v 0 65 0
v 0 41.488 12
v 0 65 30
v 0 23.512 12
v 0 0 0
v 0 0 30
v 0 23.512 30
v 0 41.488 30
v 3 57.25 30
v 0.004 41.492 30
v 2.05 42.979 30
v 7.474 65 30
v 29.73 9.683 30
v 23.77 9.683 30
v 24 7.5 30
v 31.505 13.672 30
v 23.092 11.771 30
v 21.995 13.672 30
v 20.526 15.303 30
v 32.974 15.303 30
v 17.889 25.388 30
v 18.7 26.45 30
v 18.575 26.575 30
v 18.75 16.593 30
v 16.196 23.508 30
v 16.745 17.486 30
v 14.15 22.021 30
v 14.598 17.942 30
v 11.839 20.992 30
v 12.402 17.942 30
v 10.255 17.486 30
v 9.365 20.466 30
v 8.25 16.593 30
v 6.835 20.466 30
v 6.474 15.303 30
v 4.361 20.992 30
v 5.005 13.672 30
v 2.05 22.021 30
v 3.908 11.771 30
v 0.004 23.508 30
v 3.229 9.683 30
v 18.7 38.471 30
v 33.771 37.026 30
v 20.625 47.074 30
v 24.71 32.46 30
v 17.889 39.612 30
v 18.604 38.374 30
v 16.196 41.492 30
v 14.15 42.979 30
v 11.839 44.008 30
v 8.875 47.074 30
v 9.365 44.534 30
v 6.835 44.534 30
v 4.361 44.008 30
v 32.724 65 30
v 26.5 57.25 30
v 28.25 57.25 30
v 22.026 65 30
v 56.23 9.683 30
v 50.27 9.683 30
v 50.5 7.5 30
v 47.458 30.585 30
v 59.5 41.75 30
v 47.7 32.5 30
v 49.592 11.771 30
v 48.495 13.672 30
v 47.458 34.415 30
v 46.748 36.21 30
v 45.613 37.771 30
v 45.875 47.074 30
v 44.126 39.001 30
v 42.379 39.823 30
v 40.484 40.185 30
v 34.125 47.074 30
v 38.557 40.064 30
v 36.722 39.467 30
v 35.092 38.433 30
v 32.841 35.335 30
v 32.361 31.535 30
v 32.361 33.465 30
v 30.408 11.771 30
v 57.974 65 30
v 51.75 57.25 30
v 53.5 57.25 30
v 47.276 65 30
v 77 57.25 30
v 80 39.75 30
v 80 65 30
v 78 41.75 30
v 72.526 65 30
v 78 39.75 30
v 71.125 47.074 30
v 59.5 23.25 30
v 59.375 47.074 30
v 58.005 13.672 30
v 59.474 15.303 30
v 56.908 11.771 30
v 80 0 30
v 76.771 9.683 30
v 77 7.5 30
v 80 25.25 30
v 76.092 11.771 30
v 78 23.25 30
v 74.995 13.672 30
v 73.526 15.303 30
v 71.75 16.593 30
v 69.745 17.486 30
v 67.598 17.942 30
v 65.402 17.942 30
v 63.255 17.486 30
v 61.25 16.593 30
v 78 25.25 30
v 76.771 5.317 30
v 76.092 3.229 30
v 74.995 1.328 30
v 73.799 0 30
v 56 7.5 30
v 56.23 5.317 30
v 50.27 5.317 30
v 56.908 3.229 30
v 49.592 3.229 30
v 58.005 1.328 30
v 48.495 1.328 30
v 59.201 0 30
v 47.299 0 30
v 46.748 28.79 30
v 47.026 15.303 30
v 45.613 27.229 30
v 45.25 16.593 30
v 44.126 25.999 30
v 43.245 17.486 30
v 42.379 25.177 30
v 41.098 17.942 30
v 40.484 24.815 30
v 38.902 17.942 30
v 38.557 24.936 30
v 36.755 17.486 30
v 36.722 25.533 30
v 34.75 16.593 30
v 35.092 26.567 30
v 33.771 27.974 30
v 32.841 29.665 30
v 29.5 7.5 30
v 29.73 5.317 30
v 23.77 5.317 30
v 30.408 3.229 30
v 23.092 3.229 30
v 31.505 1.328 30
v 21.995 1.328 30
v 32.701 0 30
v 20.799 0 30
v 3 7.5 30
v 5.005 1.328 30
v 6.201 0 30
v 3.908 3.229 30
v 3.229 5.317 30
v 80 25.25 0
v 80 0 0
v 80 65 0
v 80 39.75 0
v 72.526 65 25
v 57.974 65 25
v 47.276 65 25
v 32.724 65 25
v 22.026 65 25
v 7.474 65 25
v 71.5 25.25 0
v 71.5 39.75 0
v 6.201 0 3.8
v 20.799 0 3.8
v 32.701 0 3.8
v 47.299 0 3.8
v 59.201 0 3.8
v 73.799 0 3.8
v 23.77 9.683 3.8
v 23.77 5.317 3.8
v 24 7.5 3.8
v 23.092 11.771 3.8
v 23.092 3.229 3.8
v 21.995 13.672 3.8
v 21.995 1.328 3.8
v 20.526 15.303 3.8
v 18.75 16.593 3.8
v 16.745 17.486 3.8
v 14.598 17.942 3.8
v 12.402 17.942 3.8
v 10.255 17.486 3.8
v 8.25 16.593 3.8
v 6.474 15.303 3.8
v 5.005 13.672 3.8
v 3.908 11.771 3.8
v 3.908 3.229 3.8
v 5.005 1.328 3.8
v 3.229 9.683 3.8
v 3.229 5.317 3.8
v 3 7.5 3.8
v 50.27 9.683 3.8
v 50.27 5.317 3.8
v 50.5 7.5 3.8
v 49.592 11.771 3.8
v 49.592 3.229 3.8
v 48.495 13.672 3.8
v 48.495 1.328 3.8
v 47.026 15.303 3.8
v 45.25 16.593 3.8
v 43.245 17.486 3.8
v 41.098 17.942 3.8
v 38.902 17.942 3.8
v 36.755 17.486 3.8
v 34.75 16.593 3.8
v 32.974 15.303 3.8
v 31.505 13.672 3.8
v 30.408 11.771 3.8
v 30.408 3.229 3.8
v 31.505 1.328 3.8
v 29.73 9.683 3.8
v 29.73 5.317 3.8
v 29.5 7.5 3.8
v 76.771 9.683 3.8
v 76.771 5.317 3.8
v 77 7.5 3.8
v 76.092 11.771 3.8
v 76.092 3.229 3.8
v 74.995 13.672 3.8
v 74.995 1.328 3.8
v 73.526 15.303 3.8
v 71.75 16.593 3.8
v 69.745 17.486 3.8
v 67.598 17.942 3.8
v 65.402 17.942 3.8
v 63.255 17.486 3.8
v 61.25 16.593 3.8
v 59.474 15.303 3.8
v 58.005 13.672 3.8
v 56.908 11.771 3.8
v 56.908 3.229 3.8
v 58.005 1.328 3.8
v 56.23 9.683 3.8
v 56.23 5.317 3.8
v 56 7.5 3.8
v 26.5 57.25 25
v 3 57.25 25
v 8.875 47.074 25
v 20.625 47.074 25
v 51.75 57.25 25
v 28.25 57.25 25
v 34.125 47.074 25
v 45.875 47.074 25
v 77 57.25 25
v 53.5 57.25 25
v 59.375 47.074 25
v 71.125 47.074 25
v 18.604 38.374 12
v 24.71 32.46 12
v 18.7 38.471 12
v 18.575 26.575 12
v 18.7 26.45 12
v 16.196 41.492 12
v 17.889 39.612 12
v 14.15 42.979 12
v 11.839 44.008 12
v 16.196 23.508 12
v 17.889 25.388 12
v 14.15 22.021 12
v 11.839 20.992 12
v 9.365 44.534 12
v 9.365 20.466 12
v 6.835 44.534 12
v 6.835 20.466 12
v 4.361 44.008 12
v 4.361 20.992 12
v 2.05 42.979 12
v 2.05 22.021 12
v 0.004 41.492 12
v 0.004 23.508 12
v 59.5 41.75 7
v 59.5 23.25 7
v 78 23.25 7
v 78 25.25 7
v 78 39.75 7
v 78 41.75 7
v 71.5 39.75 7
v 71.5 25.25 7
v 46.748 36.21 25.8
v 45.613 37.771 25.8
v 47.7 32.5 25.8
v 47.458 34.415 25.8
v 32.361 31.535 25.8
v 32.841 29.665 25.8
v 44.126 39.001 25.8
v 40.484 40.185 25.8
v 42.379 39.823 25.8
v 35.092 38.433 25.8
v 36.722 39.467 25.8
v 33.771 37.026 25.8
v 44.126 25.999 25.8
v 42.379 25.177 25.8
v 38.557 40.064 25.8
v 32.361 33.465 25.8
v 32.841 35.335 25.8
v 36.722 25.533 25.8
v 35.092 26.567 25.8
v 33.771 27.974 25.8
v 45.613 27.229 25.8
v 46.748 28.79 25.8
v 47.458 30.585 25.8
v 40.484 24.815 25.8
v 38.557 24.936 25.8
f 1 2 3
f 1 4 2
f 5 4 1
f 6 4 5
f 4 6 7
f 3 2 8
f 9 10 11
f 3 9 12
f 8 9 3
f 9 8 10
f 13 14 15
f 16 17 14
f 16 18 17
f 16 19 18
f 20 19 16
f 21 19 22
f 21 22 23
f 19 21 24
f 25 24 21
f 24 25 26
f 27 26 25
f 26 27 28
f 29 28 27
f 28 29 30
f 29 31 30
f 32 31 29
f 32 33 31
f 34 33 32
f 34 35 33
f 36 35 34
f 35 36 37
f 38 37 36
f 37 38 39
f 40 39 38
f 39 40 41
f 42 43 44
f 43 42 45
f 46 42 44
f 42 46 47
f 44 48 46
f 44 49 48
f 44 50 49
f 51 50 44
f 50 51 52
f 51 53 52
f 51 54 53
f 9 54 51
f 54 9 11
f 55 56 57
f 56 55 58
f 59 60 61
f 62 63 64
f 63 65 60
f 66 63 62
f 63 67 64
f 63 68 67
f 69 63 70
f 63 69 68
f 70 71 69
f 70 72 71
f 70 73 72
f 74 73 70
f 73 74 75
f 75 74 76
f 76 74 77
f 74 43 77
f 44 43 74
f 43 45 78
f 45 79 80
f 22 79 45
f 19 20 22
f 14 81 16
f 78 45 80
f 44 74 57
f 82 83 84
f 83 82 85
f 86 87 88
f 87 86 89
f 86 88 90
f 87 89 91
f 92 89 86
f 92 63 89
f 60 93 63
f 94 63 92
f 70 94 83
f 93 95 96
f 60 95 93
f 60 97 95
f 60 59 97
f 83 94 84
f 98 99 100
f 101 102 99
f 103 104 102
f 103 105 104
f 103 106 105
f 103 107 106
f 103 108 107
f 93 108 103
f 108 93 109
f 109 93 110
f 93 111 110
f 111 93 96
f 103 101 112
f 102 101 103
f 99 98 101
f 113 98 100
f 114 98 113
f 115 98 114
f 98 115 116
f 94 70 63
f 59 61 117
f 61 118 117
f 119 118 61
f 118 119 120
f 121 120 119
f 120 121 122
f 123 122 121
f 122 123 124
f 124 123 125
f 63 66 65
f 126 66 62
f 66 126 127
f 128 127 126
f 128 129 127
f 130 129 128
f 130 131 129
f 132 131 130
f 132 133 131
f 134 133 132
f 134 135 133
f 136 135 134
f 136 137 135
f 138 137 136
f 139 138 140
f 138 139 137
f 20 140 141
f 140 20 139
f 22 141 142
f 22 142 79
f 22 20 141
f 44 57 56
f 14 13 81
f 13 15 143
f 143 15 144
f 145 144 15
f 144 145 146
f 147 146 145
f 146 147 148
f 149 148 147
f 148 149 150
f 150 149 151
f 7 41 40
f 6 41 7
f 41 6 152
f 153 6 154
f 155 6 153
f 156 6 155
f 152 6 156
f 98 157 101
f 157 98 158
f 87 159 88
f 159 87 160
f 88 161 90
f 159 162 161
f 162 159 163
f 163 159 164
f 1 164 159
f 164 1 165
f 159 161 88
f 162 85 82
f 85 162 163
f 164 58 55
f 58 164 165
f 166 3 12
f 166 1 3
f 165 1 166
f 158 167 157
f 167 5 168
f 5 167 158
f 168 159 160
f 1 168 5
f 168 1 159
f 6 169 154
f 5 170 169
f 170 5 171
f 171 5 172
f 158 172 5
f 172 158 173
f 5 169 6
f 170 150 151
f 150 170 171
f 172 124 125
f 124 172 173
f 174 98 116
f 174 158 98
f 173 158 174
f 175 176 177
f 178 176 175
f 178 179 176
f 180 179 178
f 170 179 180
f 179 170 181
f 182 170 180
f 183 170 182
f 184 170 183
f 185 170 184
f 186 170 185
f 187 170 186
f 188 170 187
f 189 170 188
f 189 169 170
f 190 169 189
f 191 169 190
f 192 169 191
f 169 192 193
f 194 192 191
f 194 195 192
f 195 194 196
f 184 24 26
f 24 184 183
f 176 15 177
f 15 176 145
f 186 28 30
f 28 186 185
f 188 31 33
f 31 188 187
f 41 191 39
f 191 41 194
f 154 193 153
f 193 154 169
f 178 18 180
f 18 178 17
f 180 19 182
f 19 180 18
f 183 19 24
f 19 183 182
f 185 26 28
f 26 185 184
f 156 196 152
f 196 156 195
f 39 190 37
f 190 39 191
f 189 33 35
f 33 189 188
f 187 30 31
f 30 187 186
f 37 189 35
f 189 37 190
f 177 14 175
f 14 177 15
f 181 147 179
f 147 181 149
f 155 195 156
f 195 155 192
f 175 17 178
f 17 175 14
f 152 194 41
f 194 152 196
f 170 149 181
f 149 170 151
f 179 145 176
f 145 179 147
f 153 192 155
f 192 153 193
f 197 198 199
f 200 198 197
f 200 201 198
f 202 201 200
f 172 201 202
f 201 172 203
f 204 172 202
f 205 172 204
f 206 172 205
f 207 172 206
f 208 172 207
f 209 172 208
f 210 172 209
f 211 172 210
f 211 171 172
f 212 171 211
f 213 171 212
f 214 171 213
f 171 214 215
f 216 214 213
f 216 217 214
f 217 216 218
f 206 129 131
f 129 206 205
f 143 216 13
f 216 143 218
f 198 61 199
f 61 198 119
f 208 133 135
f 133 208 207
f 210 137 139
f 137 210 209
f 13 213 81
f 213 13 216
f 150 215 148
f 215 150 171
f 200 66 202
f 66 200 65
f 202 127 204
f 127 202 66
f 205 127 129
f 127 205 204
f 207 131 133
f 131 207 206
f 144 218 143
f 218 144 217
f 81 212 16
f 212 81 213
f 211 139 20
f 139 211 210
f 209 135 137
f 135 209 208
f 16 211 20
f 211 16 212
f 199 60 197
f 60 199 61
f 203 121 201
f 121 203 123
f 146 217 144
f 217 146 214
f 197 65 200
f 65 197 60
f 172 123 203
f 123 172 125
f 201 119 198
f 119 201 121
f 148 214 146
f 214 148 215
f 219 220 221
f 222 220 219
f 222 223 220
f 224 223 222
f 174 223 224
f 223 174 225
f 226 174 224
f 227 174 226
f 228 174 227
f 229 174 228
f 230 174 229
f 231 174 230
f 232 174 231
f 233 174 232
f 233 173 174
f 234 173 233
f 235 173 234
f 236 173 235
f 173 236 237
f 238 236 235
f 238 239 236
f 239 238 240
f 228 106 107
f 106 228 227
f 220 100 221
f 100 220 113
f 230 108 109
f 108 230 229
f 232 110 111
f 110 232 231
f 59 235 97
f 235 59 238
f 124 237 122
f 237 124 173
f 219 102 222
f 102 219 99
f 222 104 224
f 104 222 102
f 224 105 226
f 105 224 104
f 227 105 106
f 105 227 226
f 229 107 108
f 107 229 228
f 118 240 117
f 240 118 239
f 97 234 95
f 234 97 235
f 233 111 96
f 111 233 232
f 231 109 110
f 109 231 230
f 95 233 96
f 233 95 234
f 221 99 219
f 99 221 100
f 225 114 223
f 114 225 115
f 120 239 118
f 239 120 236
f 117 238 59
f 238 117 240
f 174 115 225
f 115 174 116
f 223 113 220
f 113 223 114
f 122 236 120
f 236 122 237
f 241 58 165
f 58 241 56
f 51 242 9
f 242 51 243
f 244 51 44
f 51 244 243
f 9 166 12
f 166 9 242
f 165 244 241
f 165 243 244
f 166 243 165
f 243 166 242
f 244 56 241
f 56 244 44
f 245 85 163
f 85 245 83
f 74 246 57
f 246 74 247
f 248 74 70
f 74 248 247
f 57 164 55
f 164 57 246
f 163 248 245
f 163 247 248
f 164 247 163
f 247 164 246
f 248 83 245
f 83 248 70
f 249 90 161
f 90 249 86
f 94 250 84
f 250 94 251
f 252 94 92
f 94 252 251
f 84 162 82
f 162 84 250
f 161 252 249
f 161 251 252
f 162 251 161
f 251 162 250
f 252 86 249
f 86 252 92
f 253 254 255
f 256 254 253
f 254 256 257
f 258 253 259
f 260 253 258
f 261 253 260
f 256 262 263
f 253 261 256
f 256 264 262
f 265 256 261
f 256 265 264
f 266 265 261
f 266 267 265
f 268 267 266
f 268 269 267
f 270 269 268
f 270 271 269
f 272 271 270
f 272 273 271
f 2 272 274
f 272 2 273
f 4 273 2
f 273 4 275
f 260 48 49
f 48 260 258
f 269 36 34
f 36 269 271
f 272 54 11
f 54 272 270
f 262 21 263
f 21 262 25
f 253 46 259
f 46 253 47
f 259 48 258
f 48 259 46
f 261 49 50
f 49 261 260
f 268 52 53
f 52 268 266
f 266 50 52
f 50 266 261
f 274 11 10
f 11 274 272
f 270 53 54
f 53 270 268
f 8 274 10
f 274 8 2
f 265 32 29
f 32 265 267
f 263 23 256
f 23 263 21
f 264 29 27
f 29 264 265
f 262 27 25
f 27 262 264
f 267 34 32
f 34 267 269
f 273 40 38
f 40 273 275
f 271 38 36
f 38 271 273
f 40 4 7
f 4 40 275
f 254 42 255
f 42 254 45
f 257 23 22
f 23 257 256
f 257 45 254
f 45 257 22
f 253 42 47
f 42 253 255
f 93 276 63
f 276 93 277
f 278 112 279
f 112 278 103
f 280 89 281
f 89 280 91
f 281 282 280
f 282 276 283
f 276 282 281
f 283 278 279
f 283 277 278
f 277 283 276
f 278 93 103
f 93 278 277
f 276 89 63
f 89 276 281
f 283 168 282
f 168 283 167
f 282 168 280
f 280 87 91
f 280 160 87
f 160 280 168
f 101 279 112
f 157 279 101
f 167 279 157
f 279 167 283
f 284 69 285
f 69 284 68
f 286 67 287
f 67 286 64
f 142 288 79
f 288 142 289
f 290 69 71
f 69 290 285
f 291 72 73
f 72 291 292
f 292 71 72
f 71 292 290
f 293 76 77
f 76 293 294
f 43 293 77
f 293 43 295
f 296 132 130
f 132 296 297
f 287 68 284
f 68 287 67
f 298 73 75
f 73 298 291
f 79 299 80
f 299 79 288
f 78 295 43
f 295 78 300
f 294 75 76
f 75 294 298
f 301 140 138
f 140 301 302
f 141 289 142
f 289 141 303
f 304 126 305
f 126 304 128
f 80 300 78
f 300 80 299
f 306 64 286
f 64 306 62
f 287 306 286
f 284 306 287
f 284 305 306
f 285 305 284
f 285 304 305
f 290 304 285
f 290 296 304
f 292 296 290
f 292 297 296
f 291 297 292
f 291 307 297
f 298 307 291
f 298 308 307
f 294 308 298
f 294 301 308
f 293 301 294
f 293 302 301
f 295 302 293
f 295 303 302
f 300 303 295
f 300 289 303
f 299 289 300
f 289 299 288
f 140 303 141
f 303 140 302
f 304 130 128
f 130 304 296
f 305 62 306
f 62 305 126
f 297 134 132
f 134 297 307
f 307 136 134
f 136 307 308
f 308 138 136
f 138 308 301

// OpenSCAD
length = 80;
width = 65;
height = 30;

//Based on magnet size:
magnetBaseOuterDiameter = 20;
magnetBaseInnerDiameter = 15.4;
magnetHeight = 4.2;

coinDiameter = 21;
coinOffset = 3;
coinHeight = 26.2;

conflictTokenDiameter = 23.5;
conflictTokenOffset = 4;
conflictTokenHeight = 5;

reagentTokenDiameter = 24.2;
reagentTokenOffset = 4;
reagentTokenHeight = 18;
reagentTokenTriangleSide = 8.5;
reagentTokenLongSide = 12.1;

alchemicalTokenDiameter = 18.5;
alchemicalTokenOffset = 2;
alchemicalTokenHeight = 23;
squareLipThickness = 2;
squareLipWidthRemainder = 4;
squareLipLengthRemainder = 12;

spaceBetweenCircles = 3;

difference(){
    cube([length, width, height]);

    translate([coinDiameter/2 + spaceBetweenCircles, coinDiameter/2 - coinOffset, height - coinHeight])
        cylinder(coinHeight, d=coinDiameter);

    translate([length /2, coinDiameter/2 - coinOffset, height - coinHeight])
        cylinder(coinHeight, d=coinDiameter);
    
    translate([length - (coinDiameter/2 + spaceBetweenCircles), coinDiameter/2 - coinOffset, height - coinHeight])
        cylinder(coinHeight, d=coinDiameter);
    
    
    
    
    translate([conflictTokenDiameter/2 + spaceBetweenCircles, width - (conflictTokenDiameter/2 - conflictTokenOffset), height - conflictTokenHeight])
        cylinder(conflictTokenHeight, d=conflictTokenDiameter, $fn=6);

    translate([length /2, width - (conflictTokenDiameter/2 - conflictTokenOffset), height - conflictTokenHeight])
        cylinder(conflictTokenHeight, d=conflictTokenDiameter, $fn=6);
    
    translate([length - (conflictTokenDiameter/2 + spaceBetweenCircles), width - (conflictTokenDiameter/2 - conflictTokenOffset), height - conflictTokenHeight])
        cylinder(conflictTokenHeight, d=conflictTokenDiameter, $fn=6);
    
    


    translate([reagentTokenDiameter/2 - reagentTokenOffset, width/2, height - reagentTokenHeight])
        cylinder(reagentTokenHeight, d=reagentTokenDiameter);
    translate([reagentTokenDiameter - 5.5, width/2 - reagentTokenLongSide/2, height - reagentTokenHeight])
        rotate([0,0,45])
            cube([reagentTokenTriangleSide, reagentTokenTriangleSide,reagentTokenHeight]);

    translate([length - (alchemicalTokenDiameter + squareLipThickness), width/2 - alchemicalTokenDiameter/2, height - alchemicalTokenHeight])
        cube([alchemicalTokenDiameter, alchemicalTokenDiameter, alchemicalTokenHeight]);
    translate([length - (alchemicalTokenDiameter + squareLipThickness - squareLipLengthRemainder), width/2 - (alchemicalTokenDiameter - squareLipWidthRemainder)/2, 0])
        cube([
            alchemicalTokenDiameter + squareLipThickness - squareLipLengthRemainder,
            alchemicalTokenDiameter - squareLipWidthRemainder,
            height]);
            
    
        
    translate([length/2, width/2, height - magnetHeight])
        cylinder(magnetHeight, d=magnetBaseInnerDiameter);
        

}
